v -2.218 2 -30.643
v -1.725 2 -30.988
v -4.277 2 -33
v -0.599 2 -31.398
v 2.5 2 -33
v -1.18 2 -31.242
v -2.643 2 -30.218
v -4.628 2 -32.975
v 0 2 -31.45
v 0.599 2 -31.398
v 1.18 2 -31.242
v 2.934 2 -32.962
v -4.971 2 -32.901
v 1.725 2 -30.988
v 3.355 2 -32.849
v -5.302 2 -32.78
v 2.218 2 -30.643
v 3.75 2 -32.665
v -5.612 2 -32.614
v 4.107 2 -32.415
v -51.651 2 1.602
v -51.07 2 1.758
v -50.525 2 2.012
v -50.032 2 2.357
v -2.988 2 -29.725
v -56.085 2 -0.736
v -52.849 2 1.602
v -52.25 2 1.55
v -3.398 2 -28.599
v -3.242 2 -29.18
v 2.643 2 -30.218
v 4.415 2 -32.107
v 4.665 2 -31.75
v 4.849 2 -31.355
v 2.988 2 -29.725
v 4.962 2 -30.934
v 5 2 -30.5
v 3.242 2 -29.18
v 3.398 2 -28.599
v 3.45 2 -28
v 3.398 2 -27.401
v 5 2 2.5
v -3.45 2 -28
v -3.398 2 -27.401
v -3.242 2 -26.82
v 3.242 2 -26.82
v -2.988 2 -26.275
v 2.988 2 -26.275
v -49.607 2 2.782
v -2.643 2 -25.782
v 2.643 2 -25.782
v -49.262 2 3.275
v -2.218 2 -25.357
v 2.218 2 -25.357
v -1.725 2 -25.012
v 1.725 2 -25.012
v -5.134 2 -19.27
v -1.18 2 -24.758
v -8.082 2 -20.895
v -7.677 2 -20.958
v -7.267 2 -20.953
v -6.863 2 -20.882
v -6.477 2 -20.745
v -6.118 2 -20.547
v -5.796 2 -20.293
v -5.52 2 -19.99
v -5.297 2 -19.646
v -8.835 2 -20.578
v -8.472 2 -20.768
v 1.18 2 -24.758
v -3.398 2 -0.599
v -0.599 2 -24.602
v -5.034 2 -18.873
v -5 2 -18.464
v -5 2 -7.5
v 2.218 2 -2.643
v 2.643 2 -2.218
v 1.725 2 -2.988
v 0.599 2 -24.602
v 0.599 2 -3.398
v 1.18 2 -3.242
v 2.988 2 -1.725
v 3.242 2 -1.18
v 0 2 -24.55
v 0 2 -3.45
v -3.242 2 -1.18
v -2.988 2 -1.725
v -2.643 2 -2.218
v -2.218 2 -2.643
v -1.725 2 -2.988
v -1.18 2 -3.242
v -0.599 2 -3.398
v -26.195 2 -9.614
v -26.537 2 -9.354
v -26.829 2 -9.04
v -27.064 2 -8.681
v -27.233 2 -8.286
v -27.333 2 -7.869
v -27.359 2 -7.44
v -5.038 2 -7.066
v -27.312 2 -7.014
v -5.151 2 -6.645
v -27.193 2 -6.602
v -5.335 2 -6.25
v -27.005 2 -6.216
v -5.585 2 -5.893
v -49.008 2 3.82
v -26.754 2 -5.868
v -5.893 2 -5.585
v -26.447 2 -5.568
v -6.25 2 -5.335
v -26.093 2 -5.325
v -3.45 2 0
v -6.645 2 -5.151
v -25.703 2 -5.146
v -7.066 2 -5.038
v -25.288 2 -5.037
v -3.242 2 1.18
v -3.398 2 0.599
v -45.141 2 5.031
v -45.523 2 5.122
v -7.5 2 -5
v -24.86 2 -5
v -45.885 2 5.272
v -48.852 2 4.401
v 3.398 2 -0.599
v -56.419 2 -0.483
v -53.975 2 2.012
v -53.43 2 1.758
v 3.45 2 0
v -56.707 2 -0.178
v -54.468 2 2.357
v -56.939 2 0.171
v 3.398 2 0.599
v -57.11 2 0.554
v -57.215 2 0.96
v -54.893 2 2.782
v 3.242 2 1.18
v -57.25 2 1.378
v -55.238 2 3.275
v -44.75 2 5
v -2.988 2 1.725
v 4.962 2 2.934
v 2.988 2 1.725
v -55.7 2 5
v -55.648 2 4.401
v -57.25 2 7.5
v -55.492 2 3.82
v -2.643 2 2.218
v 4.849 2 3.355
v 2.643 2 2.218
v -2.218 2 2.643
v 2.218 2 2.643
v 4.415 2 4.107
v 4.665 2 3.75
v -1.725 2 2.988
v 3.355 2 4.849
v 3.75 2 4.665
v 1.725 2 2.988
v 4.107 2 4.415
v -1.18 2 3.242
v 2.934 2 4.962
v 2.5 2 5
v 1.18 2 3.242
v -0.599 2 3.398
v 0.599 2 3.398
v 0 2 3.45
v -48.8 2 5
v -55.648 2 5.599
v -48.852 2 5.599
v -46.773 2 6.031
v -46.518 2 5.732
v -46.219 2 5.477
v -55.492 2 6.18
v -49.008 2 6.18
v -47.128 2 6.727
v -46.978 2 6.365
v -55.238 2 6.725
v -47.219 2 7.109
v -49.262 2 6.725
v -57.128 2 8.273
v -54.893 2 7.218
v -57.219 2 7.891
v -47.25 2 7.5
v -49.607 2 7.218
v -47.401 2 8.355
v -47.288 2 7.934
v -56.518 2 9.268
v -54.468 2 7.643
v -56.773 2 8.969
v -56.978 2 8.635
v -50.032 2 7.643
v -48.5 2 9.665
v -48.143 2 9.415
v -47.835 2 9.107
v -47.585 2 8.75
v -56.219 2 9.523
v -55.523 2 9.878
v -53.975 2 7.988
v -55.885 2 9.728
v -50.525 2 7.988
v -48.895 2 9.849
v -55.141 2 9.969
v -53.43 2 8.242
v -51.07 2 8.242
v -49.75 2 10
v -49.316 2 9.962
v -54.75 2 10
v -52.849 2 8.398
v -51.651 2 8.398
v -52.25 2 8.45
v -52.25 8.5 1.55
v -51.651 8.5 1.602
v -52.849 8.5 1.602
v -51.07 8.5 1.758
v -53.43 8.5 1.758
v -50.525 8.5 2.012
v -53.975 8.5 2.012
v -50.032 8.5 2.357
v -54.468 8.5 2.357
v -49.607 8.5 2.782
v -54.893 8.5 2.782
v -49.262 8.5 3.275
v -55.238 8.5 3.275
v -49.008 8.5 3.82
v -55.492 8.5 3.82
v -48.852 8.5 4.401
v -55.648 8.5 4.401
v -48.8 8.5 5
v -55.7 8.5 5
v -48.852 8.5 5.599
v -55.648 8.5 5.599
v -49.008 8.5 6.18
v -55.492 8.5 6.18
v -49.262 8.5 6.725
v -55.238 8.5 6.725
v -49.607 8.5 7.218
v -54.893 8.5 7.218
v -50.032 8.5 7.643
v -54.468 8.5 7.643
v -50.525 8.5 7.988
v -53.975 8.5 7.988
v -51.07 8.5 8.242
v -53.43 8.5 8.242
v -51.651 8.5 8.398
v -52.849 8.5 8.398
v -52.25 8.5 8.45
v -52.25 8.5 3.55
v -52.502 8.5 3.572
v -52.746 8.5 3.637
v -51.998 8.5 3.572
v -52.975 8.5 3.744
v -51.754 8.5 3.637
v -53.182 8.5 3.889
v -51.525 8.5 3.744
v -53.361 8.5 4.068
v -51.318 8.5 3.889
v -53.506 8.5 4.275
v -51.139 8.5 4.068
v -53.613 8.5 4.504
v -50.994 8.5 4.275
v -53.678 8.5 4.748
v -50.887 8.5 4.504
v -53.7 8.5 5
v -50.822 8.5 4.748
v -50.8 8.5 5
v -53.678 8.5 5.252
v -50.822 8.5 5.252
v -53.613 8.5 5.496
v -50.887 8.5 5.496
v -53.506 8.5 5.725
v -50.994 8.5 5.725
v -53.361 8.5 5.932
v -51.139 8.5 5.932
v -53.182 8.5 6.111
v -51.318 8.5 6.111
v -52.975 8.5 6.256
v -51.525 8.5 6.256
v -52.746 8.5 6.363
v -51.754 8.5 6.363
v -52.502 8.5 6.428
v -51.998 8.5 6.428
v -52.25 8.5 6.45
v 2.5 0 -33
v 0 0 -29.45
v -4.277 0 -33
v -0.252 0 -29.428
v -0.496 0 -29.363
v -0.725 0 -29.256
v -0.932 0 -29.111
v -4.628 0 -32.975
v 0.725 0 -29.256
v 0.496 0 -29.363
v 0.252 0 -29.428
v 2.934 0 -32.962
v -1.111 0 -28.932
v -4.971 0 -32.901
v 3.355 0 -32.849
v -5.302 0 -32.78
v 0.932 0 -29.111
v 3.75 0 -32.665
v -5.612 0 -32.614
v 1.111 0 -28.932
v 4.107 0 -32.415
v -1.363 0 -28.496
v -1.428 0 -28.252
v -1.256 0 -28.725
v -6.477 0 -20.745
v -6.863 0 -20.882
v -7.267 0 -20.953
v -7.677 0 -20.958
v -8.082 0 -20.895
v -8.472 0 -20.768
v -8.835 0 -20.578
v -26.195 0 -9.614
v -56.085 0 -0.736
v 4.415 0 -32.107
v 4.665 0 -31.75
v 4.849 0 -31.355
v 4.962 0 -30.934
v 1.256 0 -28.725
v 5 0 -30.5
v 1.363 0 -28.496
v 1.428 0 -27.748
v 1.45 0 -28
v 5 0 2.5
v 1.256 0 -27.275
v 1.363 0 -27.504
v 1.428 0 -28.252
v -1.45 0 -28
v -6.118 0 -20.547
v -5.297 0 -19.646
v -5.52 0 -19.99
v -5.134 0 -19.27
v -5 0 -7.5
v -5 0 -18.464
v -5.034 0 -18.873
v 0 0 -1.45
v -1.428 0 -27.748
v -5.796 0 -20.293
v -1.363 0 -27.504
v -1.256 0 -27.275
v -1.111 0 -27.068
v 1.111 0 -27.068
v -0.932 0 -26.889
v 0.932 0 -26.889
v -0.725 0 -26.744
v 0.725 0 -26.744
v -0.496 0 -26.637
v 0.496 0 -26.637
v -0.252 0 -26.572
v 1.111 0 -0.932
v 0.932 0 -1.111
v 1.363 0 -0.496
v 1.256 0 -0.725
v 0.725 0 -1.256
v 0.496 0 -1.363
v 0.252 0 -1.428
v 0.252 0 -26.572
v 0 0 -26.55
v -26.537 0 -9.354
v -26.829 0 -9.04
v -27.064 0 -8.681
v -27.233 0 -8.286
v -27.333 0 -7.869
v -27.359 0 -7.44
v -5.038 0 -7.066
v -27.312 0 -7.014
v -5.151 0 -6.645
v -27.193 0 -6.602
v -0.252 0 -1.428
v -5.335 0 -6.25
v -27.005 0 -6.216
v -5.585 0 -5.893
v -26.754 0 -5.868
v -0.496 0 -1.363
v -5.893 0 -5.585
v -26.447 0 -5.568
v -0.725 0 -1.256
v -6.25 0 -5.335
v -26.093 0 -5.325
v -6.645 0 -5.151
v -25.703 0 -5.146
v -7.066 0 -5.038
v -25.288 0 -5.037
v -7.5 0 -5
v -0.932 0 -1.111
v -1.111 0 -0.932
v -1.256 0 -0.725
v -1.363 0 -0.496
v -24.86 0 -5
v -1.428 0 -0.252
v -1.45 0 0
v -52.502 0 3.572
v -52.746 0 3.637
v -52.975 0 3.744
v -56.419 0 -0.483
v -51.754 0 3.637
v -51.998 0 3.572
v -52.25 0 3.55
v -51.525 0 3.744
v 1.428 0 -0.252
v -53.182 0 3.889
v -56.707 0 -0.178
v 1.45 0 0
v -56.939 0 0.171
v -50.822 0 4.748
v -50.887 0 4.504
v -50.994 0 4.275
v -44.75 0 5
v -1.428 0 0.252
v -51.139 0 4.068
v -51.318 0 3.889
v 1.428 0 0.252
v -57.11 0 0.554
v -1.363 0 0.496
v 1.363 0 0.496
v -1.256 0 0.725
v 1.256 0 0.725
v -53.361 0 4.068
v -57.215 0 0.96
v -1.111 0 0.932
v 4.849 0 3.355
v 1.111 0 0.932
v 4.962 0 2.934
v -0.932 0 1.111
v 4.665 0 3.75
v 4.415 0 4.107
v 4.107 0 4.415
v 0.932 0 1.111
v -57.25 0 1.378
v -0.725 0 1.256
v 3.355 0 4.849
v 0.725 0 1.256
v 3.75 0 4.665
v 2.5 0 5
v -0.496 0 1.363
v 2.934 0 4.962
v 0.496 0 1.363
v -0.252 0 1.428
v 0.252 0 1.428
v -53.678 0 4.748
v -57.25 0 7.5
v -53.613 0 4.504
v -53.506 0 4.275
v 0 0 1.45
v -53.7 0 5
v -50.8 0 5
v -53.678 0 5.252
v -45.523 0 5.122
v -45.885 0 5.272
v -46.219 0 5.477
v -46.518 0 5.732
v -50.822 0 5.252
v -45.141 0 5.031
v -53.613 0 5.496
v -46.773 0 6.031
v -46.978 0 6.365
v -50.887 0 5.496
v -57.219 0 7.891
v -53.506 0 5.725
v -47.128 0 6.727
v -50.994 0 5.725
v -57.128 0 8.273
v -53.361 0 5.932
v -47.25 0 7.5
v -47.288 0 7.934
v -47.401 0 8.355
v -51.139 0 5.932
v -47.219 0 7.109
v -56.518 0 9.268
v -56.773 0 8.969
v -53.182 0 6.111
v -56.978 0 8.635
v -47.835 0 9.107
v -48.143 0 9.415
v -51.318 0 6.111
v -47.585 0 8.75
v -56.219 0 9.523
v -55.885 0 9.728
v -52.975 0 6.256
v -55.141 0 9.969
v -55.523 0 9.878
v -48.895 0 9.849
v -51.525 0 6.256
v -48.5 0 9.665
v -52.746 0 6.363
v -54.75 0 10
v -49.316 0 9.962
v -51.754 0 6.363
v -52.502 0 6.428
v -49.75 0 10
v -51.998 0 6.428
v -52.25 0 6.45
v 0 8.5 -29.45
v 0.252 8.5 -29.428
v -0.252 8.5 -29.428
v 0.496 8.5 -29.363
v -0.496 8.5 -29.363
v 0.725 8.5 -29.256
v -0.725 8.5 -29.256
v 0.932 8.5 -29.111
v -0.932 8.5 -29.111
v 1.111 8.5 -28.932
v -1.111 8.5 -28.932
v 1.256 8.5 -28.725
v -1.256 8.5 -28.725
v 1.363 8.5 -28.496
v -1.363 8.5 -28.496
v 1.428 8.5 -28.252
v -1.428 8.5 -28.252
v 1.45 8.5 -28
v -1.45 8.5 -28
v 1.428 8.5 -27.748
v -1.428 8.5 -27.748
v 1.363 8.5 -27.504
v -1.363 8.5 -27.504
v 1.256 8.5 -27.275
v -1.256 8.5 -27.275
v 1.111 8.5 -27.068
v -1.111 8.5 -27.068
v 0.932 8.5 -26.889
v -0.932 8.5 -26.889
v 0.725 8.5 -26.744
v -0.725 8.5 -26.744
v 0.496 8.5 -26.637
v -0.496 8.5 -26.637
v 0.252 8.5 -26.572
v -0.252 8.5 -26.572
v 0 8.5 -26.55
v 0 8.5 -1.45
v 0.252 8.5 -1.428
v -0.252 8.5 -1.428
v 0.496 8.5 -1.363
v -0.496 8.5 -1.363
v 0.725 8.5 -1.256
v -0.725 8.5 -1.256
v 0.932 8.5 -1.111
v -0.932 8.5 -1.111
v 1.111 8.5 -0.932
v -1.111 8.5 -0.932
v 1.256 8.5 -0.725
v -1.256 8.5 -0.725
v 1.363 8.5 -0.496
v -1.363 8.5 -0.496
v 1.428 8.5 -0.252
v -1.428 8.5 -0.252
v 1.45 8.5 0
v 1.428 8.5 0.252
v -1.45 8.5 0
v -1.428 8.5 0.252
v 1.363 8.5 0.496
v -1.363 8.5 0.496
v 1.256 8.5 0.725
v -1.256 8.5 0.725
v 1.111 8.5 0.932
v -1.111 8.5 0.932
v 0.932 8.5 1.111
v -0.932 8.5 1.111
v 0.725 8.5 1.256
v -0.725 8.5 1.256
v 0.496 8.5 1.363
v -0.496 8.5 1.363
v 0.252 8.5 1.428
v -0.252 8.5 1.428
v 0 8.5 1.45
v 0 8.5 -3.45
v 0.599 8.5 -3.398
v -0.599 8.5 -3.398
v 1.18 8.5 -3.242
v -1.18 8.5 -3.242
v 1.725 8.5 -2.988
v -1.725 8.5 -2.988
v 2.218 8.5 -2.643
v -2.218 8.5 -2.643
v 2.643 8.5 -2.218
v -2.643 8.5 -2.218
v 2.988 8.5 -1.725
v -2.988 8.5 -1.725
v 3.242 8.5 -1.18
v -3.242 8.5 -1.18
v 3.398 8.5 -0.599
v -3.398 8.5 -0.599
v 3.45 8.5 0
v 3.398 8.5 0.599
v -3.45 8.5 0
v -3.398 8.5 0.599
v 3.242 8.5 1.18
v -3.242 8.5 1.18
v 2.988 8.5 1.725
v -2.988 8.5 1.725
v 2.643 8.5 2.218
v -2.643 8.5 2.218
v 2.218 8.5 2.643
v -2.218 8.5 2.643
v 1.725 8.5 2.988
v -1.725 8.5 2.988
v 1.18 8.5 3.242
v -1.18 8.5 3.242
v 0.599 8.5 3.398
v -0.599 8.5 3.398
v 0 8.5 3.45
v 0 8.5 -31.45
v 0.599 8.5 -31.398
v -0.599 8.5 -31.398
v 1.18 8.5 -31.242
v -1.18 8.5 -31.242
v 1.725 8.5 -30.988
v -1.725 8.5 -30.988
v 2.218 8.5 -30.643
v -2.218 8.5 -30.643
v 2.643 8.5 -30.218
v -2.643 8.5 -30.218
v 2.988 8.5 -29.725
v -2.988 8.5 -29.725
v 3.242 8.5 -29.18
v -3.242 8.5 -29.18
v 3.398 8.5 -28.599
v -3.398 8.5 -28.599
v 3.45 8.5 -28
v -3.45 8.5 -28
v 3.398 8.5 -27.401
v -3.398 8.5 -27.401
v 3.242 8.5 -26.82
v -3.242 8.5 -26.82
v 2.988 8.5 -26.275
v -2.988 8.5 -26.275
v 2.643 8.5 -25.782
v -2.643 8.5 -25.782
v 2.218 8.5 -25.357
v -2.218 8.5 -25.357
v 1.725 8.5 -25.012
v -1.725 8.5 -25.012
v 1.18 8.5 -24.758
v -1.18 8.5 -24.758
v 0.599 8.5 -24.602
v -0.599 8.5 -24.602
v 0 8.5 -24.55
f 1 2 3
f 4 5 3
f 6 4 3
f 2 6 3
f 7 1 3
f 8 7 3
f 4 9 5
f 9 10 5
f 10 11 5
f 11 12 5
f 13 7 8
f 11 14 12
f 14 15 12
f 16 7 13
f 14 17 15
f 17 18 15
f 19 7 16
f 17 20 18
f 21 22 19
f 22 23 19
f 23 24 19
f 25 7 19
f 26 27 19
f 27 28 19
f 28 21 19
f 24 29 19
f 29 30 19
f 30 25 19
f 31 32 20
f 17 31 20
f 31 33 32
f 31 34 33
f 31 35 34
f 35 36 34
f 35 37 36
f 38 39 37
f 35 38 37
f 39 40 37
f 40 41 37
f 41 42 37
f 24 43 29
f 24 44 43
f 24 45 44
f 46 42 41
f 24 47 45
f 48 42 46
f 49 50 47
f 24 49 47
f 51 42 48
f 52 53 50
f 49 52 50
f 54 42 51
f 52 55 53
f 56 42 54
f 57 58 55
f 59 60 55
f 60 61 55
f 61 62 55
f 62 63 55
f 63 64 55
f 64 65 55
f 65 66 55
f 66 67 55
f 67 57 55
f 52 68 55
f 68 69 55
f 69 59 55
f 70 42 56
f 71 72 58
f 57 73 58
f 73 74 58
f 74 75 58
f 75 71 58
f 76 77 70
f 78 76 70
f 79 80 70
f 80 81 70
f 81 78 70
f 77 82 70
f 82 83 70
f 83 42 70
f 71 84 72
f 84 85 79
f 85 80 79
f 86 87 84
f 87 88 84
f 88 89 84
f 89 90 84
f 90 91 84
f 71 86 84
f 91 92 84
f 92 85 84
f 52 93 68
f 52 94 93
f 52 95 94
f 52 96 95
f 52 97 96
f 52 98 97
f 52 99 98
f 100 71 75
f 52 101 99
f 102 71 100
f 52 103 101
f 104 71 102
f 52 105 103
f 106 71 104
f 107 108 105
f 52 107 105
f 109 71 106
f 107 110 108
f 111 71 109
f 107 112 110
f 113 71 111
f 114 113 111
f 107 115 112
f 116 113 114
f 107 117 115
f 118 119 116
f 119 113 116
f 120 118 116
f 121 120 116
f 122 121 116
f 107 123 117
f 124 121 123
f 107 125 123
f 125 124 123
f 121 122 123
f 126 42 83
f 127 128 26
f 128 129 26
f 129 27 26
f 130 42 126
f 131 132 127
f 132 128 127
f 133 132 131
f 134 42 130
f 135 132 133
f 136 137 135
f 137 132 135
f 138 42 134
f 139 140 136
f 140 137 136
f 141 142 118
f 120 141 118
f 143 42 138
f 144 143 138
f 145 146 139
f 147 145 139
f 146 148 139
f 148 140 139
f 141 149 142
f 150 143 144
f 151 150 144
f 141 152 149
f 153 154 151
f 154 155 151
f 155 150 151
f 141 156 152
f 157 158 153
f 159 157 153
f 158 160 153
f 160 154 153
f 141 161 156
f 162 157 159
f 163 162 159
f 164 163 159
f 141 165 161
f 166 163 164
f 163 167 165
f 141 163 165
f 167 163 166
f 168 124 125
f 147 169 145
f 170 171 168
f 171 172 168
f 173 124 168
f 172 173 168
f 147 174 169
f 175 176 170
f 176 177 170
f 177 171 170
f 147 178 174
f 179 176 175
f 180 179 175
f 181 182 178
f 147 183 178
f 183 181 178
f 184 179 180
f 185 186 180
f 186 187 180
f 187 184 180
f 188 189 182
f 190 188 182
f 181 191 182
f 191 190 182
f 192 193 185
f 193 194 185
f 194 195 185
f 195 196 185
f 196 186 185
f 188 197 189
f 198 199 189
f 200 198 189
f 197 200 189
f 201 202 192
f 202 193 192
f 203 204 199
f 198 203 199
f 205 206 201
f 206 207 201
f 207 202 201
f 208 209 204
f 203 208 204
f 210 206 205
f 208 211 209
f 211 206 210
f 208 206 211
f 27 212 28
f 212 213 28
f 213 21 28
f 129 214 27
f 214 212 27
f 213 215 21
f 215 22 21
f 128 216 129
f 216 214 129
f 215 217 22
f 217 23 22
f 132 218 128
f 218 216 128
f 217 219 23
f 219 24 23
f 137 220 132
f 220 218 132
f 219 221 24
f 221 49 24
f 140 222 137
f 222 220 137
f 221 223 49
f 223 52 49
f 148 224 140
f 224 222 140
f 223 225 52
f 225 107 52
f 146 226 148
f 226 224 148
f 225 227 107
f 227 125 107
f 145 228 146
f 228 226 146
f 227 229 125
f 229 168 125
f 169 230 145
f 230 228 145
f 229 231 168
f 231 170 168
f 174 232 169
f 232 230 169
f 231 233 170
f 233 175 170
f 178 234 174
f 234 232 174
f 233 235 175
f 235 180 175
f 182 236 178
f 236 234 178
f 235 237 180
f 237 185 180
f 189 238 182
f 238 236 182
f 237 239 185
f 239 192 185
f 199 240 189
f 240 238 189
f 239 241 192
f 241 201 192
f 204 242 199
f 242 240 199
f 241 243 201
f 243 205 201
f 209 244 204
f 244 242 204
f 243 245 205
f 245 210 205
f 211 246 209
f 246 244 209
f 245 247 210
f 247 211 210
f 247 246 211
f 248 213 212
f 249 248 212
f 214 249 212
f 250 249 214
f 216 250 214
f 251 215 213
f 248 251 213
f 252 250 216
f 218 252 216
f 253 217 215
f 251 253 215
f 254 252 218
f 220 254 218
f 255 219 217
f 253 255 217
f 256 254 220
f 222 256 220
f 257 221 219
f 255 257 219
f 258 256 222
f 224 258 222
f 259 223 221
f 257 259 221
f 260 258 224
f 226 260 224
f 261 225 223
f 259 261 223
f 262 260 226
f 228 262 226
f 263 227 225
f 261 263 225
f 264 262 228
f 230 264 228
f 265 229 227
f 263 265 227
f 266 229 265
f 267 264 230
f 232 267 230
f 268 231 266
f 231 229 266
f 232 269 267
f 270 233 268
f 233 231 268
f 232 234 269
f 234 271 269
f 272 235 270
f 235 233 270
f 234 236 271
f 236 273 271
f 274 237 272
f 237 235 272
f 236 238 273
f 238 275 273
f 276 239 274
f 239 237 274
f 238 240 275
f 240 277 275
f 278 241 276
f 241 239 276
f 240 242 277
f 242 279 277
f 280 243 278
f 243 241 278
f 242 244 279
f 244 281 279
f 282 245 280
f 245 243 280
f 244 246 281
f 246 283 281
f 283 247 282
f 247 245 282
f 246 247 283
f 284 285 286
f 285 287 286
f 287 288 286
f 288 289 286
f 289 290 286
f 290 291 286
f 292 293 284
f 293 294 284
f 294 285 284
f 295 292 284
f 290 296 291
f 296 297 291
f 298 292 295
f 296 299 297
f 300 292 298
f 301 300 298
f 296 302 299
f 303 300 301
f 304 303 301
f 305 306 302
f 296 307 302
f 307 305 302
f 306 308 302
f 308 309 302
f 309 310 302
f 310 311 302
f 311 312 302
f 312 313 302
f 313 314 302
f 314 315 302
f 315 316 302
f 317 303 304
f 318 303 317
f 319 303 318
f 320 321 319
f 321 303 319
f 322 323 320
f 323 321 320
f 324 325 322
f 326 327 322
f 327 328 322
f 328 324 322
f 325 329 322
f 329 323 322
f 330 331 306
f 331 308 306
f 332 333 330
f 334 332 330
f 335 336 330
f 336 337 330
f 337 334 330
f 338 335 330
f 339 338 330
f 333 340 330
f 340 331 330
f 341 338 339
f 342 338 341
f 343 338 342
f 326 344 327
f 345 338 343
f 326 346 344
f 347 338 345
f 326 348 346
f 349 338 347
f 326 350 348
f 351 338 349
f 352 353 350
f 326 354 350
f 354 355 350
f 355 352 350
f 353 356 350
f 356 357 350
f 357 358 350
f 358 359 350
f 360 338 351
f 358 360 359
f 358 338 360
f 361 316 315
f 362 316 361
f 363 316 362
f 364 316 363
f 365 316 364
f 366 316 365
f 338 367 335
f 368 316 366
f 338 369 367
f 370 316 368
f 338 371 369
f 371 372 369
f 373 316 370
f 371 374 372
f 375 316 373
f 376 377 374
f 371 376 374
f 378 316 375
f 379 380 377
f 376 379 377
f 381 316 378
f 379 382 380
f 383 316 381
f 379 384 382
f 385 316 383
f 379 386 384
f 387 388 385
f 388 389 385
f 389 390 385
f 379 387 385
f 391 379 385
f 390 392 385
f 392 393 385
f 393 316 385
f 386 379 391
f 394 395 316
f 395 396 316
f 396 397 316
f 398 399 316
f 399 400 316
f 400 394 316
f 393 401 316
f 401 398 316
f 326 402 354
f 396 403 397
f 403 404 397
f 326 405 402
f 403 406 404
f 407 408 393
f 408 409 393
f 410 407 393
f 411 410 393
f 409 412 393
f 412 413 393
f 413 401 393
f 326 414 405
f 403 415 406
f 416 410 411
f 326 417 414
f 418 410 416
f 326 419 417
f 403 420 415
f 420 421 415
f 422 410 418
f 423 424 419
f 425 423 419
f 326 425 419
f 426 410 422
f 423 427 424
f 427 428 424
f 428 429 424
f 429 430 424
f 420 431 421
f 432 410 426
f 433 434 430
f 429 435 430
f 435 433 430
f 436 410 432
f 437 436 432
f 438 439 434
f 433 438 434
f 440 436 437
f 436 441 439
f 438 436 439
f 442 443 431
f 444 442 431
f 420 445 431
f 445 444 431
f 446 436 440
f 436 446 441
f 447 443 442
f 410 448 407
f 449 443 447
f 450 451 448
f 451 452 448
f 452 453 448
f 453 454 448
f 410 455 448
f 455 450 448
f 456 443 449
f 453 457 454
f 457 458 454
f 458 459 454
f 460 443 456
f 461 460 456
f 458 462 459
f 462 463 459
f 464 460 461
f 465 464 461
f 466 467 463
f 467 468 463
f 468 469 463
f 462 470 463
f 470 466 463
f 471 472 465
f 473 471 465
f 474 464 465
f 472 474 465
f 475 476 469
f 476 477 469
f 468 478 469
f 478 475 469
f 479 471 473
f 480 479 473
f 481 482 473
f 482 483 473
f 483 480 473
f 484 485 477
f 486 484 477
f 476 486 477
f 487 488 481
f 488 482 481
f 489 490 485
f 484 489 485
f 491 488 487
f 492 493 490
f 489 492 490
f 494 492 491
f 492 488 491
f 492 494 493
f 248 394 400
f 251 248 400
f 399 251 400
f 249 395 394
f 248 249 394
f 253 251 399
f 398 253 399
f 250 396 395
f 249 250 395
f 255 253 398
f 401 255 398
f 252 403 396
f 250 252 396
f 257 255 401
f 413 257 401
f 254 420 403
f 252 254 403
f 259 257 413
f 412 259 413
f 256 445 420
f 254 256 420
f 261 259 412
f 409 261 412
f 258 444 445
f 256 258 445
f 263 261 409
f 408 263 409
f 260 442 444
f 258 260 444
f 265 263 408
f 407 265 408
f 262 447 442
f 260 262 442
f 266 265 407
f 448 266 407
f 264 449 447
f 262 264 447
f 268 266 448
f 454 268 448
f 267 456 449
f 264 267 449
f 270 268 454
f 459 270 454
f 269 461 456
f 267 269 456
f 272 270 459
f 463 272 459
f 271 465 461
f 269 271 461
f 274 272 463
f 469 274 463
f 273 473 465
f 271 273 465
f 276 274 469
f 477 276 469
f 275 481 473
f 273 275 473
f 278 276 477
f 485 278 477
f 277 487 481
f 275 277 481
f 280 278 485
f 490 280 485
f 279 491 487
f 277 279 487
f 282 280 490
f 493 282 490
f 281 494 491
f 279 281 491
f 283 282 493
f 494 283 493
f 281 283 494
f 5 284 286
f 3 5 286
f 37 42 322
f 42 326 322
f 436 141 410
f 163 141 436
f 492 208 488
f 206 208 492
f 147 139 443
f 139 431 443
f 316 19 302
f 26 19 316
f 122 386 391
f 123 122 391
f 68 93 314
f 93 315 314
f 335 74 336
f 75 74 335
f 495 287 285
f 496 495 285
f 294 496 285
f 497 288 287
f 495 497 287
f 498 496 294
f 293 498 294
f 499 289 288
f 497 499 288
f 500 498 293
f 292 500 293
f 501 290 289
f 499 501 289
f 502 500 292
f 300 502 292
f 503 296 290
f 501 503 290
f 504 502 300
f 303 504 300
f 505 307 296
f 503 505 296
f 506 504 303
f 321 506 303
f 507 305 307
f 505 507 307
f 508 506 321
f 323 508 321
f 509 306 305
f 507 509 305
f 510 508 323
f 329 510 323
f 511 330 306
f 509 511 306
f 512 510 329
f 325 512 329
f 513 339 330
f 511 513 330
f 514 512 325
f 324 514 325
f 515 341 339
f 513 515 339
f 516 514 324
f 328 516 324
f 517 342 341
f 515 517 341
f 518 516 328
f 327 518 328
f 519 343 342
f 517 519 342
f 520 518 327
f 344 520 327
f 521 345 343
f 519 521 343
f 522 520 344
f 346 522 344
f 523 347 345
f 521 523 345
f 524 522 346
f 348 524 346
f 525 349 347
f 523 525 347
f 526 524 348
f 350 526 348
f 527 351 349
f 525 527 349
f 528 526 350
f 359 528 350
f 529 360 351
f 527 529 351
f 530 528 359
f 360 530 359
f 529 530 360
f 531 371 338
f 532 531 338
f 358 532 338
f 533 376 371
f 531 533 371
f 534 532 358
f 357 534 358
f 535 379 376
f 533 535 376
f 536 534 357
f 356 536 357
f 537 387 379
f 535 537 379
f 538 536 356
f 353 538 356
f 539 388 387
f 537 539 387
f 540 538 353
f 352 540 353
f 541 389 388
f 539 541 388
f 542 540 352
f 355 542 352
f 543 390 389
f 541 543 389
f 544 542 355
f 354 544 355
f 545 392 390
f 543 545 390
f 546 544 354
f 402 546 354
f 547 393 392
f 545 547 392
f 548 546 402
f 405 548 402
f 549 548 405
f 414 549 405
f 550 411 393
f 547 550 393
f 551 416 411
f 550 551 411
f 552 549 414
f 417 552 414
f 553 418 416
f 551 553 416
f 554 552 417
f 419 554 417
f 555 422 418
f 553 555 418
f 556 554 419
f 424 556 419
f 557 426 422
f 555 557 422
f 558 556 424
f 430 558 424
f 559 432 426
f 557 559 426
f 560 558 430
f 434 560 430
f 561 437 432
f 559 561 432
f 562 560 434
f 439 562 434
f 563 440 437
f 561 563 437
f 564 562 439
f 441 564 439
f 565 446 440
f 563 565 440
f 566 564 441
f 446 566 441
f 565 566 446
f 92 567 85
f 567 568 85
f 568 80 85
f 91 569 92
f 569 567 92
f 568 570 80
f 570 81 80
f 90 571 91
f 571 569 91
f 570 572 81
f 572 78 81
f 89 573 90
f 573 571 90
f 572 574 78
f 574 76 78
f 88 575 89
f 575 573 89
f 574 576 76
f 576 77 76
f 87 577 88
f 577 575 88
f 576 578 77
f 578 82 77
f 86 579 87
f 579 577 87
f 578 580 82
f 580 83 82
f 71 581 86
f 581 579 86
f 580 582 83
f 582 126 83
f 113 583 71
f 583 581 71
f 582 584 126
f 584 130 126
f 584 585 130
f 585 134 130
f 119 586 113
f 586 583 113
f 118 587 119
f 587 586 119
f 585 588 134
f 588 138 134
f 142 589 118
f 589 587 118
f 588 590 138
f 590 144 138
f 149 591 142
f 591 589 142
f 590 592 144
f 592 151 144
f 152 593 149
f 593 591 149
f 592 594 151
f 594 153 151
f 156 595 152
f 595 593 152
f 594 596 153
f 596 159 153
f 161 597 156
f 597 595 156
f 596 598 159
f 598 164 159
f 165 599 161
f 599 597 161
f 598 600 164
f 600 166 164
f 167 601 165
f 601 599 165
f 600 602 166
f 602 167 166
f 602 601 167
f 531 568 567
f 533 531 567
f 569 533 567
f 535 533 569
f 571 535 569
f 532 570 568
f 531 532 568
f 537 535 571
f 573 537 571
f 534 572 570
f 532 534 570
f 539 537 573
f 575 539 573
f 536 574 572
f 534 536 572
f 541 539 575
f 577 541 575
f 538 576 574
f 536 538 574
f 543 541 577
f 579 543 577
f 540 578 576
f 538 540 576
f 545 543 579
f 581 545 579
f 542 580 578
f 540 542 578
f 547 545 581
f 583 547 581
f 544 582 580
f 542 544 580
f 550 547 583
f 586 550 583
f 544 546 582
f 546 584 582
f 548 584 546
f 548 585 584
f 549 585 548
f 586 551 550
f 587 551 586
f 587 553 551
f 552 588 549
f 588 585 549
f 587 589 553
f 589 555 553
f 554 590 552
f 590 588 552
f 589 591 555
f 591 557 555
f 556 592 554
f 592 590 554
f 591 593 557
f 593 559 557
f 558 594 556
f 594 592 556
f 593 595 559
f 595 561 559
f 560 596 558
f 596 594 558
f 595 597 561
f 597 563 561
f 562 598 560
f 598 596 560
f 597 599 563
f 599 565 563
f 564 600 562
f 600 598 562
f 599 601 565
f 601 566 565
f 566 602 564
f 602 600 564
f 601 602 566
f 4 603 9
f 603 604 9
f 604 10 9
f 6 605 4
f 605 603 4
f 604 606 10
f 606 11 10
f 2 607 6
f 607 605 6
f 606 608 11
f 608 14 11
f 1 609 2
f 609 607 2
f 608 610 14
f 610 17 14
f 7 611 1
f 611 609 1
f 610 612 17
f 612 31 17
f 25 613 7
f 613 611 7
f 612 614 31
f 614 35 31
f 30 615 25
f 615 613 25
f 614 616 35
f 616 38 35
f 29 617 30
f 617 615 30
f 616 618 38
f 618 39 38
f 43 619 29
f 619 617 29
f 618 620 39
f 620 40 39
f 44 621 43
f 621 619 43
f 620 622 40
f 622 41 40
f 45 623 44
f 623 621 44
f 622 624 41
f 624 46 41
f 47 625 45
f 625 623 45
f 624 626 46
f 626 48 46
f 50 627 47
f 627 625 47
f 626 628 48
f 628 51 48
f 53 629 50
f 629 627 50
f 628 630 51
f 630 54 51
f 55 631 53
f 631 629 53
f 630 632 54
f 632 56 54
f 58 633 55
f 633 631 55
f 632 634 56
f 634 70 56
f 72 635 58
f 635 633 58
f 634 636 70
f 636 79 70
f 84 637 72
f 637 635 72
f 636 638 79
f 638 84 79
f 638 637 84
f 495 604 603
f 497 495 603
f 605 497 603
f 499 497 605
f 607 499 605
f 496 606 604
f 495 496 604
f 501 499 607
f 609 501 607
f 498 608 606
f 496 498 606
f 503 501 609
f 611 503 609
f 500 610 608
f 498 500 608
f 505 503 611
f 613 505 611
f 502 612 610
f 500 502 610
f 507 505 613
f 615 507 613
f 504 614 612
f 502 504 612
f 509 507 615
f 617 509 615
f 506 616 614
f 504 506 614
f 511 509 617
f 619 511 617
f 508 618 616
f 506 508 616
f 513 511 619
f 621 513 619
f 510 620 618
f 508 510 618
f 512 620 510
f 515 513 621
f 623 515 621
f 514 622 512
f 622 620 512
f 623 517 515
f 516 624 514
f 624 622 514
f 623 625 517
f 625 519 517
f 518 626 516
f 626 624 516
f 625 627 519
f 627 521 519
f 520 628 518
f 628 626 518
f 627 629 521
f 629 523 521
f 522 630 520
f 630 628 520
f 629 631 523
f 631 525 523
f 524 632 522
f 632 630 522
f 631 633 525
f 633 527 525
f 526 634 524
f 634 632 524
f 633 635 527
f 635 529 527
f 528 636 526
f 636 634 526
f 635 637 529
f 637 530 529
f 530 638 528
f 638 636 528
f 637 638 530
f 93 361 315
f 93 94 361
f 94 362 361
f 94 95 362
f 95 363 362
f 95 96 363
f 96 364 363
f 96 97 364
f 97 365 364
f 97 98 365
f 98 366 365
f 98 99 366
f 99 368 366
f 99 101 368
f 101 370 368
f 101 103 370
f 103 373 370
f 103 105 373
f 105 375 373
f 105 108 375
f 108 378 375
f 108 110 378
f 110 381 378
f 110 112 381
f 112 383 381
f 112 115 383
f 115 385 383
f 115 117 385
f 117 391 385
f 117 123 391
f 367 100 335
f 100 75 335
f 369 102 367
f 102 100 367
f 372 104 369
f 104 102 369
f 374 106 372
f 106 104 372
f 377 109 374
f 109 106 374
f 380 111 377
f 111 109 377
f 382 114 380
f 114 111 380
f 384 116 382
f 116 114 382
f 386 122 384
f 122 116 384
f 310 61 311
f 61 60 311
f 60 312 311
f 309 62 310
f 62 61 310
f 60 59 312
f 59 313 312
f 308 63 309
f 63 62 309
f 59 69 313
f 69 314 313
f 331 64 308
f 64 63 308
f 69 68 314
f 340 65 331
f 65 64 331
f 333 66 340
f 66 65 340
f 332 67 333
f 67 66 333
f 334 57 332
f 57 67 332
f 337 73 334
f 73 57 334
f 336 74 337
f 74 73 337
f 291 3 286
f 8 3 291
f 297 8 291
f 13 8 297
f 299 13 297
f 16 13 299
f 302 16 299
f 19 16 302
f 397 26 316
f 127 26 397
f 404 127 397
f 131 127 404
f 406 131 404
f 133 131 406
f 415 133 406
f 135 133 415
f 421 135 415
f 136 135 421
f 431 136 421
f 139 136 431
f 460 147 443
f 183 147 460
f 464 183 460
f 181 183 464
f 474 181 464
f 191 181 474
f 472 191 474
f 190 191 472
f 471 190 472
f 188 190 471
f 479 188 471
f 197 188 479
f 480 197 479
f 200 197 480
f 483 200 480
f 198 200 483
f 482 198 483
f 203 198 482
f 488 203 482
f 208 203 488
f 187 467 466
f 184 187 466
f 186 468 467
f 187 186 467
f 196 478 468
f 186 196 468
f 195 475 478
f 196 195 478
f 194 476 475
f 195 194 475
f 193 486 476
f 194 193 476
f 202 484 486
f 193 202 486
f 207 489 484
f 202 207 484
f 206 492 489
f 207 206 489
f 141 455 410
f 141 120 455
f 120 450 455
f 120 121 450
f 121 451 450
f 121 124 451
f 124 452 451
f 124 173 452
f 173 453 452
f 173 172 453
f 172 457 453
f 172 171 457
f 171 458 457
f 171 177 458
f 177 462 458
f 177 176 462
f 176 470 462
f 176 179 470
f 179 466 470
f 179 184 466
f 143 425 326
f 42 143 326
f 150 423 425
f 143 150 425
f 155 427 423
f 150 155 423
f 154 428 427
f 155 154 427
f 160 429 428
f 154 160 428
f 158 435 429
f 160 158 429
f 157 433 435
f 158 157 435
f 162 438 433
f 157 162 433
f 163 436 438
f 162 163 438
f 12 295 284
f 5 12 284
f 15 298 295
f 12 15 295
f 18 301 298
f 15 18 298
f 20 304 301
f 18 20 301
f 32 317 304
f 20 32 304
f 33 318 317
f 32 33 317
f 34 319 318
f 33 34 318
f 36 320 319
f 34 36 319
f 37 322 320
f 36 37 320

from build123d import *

# Parameters (mm, degrees)
SKETCH1_R             = 3.45
SKETCH1_R_2           = 1.45
BOSS_EXTRUDE1_DEPTH   = 8.5
BOSS_EXTRUDE1_2_DEPTH = 8.5
BOSS_EXTRUDE1_3_DEPTH = 8.5
SKETCH2_R             = 1.45
BOSS_EXTRUDE2_DEPTH   = 2
FILLET2_R             = 2.5


with BuildPart() as part:
    # Sketch1 → Boss-Extrude1 (new body)
    with BuildSketch(Plane(origin=(0, 0, 0), x_dir=(1, 0, 0), z_dir=(0, 1, 0))):
        with Locations(Location((-52.25, 5, 0), (0, 0, 270))):
            Circle(SKETCH1_R)
        with Locations(Location((-52.25, 5, 0), (0, 0, 270))):
            Circle(SKETCH1_R_2, mode=Mode.SUBTRACT)
    extrude(amount=BOSS_EXTRUDE1_DEPTH)



with BuildPart() as body_2:
    # Sketch1 → Boss-Extrude1 2 (new body)
    with BuildSketch(Plane(origin=(0, 0, 0), x_dir=(1, 0, 0), z_dir=(0, 1, 0))):
        with Locations(Location((0, 0, 0), (0, 0, 270))):
            Circle(SKETCH1_R)
        with Locations(Location((0, 0, 0), (0, 0, 270))):
            Circle(SKETCH1_R_2, mode=Mode.SUBTRACT)
    extrude(amount=BOSS_EXTRUDE1_2_DEPTH)


with BuildPart() as body_3:
    # Sketch1 → Boss-Extrude1 3 (new body)
    with BuildSketch(Plane(origin=(0, 0, 0), x_dir=(1, 0, 0), z_dir=(0, 1, 0))):
        with Locations(Location((0, -28, 0), (0, 0, 270))):
            Circle(SKETCH1_R)
        with Locations(Location((0, -28, 0), (0, 0, 270))):
            Circle(SKETCH1_R_2, mode=Mode.SUBTRACT)
    extrude(amount=BOSS_EXTRUDE1_3_DEPTH)


with BuildPart() as part_1:
    add(part.part)

    add(body_2.part)  # Boss-Extrude2 merges body 2

    add(body_3.part)  # Boss-Extrude2 merges body 3
    # Sketch2 → Boss-Extrude2 (add)
    with BuildSketch(Plane(origin=(0, 0, 0), x_dir=(1, 0, 0), z_dir=(0, 1, 0))):
        Polygon((5, 5), (5, -33), (-5, -33), (-57.25, 0), (-57.25, 10), (-47.25, 10), (-47.25, 5), align=None)
        with Locations(Location((-52.25, 5, 0), (0, 0, 270))):
            Circle(SKETCH2_R, mode=Mode.SUBTRACT)
        with Locations(Location((0, -28, 0), (0, 0, 270))):
            Circle(SKETCH2_R, mode=Mode.SUBTRACT)
        with Locations(Location((0, 0, 0), (0, 0, 270))):
            Circle(SKETCH2_R, mode=Mode.SUBTRACT)
        Polygon((-33.5, -5), (-5, -23), (-5, -5), align=None, mode=Mode.SUBTRACT)
    extrude(amount=BOSS_EXTRUDE2_DEPTH)

    # Fillet2
    fillet2_edges = [part_1.edges().sort_by_distance(p)[0] for p in [
        (-5, 1, 33),
        (-57.25, 1, 0),
        (-57.25, 1, -10),
        (-47.25, 1, -5),
        (5, 1, -5),
        (5, 1, 33),
        (-47.25, 1, -10),
        (-33.5, 1, 5),
        (-5, 1, 5),
        (-5, 1, 23),
    ]]
    fillet(fillet2_edges, radius=FILLET2_R - 0.0001)  # a hair under: the kernel refuses the full size


with BuildPart() as body_2_2:
    # Mirror1: mirrored copy
    add(part_1.part.mirror(Plane.XY))


solid = body_2_2.part
